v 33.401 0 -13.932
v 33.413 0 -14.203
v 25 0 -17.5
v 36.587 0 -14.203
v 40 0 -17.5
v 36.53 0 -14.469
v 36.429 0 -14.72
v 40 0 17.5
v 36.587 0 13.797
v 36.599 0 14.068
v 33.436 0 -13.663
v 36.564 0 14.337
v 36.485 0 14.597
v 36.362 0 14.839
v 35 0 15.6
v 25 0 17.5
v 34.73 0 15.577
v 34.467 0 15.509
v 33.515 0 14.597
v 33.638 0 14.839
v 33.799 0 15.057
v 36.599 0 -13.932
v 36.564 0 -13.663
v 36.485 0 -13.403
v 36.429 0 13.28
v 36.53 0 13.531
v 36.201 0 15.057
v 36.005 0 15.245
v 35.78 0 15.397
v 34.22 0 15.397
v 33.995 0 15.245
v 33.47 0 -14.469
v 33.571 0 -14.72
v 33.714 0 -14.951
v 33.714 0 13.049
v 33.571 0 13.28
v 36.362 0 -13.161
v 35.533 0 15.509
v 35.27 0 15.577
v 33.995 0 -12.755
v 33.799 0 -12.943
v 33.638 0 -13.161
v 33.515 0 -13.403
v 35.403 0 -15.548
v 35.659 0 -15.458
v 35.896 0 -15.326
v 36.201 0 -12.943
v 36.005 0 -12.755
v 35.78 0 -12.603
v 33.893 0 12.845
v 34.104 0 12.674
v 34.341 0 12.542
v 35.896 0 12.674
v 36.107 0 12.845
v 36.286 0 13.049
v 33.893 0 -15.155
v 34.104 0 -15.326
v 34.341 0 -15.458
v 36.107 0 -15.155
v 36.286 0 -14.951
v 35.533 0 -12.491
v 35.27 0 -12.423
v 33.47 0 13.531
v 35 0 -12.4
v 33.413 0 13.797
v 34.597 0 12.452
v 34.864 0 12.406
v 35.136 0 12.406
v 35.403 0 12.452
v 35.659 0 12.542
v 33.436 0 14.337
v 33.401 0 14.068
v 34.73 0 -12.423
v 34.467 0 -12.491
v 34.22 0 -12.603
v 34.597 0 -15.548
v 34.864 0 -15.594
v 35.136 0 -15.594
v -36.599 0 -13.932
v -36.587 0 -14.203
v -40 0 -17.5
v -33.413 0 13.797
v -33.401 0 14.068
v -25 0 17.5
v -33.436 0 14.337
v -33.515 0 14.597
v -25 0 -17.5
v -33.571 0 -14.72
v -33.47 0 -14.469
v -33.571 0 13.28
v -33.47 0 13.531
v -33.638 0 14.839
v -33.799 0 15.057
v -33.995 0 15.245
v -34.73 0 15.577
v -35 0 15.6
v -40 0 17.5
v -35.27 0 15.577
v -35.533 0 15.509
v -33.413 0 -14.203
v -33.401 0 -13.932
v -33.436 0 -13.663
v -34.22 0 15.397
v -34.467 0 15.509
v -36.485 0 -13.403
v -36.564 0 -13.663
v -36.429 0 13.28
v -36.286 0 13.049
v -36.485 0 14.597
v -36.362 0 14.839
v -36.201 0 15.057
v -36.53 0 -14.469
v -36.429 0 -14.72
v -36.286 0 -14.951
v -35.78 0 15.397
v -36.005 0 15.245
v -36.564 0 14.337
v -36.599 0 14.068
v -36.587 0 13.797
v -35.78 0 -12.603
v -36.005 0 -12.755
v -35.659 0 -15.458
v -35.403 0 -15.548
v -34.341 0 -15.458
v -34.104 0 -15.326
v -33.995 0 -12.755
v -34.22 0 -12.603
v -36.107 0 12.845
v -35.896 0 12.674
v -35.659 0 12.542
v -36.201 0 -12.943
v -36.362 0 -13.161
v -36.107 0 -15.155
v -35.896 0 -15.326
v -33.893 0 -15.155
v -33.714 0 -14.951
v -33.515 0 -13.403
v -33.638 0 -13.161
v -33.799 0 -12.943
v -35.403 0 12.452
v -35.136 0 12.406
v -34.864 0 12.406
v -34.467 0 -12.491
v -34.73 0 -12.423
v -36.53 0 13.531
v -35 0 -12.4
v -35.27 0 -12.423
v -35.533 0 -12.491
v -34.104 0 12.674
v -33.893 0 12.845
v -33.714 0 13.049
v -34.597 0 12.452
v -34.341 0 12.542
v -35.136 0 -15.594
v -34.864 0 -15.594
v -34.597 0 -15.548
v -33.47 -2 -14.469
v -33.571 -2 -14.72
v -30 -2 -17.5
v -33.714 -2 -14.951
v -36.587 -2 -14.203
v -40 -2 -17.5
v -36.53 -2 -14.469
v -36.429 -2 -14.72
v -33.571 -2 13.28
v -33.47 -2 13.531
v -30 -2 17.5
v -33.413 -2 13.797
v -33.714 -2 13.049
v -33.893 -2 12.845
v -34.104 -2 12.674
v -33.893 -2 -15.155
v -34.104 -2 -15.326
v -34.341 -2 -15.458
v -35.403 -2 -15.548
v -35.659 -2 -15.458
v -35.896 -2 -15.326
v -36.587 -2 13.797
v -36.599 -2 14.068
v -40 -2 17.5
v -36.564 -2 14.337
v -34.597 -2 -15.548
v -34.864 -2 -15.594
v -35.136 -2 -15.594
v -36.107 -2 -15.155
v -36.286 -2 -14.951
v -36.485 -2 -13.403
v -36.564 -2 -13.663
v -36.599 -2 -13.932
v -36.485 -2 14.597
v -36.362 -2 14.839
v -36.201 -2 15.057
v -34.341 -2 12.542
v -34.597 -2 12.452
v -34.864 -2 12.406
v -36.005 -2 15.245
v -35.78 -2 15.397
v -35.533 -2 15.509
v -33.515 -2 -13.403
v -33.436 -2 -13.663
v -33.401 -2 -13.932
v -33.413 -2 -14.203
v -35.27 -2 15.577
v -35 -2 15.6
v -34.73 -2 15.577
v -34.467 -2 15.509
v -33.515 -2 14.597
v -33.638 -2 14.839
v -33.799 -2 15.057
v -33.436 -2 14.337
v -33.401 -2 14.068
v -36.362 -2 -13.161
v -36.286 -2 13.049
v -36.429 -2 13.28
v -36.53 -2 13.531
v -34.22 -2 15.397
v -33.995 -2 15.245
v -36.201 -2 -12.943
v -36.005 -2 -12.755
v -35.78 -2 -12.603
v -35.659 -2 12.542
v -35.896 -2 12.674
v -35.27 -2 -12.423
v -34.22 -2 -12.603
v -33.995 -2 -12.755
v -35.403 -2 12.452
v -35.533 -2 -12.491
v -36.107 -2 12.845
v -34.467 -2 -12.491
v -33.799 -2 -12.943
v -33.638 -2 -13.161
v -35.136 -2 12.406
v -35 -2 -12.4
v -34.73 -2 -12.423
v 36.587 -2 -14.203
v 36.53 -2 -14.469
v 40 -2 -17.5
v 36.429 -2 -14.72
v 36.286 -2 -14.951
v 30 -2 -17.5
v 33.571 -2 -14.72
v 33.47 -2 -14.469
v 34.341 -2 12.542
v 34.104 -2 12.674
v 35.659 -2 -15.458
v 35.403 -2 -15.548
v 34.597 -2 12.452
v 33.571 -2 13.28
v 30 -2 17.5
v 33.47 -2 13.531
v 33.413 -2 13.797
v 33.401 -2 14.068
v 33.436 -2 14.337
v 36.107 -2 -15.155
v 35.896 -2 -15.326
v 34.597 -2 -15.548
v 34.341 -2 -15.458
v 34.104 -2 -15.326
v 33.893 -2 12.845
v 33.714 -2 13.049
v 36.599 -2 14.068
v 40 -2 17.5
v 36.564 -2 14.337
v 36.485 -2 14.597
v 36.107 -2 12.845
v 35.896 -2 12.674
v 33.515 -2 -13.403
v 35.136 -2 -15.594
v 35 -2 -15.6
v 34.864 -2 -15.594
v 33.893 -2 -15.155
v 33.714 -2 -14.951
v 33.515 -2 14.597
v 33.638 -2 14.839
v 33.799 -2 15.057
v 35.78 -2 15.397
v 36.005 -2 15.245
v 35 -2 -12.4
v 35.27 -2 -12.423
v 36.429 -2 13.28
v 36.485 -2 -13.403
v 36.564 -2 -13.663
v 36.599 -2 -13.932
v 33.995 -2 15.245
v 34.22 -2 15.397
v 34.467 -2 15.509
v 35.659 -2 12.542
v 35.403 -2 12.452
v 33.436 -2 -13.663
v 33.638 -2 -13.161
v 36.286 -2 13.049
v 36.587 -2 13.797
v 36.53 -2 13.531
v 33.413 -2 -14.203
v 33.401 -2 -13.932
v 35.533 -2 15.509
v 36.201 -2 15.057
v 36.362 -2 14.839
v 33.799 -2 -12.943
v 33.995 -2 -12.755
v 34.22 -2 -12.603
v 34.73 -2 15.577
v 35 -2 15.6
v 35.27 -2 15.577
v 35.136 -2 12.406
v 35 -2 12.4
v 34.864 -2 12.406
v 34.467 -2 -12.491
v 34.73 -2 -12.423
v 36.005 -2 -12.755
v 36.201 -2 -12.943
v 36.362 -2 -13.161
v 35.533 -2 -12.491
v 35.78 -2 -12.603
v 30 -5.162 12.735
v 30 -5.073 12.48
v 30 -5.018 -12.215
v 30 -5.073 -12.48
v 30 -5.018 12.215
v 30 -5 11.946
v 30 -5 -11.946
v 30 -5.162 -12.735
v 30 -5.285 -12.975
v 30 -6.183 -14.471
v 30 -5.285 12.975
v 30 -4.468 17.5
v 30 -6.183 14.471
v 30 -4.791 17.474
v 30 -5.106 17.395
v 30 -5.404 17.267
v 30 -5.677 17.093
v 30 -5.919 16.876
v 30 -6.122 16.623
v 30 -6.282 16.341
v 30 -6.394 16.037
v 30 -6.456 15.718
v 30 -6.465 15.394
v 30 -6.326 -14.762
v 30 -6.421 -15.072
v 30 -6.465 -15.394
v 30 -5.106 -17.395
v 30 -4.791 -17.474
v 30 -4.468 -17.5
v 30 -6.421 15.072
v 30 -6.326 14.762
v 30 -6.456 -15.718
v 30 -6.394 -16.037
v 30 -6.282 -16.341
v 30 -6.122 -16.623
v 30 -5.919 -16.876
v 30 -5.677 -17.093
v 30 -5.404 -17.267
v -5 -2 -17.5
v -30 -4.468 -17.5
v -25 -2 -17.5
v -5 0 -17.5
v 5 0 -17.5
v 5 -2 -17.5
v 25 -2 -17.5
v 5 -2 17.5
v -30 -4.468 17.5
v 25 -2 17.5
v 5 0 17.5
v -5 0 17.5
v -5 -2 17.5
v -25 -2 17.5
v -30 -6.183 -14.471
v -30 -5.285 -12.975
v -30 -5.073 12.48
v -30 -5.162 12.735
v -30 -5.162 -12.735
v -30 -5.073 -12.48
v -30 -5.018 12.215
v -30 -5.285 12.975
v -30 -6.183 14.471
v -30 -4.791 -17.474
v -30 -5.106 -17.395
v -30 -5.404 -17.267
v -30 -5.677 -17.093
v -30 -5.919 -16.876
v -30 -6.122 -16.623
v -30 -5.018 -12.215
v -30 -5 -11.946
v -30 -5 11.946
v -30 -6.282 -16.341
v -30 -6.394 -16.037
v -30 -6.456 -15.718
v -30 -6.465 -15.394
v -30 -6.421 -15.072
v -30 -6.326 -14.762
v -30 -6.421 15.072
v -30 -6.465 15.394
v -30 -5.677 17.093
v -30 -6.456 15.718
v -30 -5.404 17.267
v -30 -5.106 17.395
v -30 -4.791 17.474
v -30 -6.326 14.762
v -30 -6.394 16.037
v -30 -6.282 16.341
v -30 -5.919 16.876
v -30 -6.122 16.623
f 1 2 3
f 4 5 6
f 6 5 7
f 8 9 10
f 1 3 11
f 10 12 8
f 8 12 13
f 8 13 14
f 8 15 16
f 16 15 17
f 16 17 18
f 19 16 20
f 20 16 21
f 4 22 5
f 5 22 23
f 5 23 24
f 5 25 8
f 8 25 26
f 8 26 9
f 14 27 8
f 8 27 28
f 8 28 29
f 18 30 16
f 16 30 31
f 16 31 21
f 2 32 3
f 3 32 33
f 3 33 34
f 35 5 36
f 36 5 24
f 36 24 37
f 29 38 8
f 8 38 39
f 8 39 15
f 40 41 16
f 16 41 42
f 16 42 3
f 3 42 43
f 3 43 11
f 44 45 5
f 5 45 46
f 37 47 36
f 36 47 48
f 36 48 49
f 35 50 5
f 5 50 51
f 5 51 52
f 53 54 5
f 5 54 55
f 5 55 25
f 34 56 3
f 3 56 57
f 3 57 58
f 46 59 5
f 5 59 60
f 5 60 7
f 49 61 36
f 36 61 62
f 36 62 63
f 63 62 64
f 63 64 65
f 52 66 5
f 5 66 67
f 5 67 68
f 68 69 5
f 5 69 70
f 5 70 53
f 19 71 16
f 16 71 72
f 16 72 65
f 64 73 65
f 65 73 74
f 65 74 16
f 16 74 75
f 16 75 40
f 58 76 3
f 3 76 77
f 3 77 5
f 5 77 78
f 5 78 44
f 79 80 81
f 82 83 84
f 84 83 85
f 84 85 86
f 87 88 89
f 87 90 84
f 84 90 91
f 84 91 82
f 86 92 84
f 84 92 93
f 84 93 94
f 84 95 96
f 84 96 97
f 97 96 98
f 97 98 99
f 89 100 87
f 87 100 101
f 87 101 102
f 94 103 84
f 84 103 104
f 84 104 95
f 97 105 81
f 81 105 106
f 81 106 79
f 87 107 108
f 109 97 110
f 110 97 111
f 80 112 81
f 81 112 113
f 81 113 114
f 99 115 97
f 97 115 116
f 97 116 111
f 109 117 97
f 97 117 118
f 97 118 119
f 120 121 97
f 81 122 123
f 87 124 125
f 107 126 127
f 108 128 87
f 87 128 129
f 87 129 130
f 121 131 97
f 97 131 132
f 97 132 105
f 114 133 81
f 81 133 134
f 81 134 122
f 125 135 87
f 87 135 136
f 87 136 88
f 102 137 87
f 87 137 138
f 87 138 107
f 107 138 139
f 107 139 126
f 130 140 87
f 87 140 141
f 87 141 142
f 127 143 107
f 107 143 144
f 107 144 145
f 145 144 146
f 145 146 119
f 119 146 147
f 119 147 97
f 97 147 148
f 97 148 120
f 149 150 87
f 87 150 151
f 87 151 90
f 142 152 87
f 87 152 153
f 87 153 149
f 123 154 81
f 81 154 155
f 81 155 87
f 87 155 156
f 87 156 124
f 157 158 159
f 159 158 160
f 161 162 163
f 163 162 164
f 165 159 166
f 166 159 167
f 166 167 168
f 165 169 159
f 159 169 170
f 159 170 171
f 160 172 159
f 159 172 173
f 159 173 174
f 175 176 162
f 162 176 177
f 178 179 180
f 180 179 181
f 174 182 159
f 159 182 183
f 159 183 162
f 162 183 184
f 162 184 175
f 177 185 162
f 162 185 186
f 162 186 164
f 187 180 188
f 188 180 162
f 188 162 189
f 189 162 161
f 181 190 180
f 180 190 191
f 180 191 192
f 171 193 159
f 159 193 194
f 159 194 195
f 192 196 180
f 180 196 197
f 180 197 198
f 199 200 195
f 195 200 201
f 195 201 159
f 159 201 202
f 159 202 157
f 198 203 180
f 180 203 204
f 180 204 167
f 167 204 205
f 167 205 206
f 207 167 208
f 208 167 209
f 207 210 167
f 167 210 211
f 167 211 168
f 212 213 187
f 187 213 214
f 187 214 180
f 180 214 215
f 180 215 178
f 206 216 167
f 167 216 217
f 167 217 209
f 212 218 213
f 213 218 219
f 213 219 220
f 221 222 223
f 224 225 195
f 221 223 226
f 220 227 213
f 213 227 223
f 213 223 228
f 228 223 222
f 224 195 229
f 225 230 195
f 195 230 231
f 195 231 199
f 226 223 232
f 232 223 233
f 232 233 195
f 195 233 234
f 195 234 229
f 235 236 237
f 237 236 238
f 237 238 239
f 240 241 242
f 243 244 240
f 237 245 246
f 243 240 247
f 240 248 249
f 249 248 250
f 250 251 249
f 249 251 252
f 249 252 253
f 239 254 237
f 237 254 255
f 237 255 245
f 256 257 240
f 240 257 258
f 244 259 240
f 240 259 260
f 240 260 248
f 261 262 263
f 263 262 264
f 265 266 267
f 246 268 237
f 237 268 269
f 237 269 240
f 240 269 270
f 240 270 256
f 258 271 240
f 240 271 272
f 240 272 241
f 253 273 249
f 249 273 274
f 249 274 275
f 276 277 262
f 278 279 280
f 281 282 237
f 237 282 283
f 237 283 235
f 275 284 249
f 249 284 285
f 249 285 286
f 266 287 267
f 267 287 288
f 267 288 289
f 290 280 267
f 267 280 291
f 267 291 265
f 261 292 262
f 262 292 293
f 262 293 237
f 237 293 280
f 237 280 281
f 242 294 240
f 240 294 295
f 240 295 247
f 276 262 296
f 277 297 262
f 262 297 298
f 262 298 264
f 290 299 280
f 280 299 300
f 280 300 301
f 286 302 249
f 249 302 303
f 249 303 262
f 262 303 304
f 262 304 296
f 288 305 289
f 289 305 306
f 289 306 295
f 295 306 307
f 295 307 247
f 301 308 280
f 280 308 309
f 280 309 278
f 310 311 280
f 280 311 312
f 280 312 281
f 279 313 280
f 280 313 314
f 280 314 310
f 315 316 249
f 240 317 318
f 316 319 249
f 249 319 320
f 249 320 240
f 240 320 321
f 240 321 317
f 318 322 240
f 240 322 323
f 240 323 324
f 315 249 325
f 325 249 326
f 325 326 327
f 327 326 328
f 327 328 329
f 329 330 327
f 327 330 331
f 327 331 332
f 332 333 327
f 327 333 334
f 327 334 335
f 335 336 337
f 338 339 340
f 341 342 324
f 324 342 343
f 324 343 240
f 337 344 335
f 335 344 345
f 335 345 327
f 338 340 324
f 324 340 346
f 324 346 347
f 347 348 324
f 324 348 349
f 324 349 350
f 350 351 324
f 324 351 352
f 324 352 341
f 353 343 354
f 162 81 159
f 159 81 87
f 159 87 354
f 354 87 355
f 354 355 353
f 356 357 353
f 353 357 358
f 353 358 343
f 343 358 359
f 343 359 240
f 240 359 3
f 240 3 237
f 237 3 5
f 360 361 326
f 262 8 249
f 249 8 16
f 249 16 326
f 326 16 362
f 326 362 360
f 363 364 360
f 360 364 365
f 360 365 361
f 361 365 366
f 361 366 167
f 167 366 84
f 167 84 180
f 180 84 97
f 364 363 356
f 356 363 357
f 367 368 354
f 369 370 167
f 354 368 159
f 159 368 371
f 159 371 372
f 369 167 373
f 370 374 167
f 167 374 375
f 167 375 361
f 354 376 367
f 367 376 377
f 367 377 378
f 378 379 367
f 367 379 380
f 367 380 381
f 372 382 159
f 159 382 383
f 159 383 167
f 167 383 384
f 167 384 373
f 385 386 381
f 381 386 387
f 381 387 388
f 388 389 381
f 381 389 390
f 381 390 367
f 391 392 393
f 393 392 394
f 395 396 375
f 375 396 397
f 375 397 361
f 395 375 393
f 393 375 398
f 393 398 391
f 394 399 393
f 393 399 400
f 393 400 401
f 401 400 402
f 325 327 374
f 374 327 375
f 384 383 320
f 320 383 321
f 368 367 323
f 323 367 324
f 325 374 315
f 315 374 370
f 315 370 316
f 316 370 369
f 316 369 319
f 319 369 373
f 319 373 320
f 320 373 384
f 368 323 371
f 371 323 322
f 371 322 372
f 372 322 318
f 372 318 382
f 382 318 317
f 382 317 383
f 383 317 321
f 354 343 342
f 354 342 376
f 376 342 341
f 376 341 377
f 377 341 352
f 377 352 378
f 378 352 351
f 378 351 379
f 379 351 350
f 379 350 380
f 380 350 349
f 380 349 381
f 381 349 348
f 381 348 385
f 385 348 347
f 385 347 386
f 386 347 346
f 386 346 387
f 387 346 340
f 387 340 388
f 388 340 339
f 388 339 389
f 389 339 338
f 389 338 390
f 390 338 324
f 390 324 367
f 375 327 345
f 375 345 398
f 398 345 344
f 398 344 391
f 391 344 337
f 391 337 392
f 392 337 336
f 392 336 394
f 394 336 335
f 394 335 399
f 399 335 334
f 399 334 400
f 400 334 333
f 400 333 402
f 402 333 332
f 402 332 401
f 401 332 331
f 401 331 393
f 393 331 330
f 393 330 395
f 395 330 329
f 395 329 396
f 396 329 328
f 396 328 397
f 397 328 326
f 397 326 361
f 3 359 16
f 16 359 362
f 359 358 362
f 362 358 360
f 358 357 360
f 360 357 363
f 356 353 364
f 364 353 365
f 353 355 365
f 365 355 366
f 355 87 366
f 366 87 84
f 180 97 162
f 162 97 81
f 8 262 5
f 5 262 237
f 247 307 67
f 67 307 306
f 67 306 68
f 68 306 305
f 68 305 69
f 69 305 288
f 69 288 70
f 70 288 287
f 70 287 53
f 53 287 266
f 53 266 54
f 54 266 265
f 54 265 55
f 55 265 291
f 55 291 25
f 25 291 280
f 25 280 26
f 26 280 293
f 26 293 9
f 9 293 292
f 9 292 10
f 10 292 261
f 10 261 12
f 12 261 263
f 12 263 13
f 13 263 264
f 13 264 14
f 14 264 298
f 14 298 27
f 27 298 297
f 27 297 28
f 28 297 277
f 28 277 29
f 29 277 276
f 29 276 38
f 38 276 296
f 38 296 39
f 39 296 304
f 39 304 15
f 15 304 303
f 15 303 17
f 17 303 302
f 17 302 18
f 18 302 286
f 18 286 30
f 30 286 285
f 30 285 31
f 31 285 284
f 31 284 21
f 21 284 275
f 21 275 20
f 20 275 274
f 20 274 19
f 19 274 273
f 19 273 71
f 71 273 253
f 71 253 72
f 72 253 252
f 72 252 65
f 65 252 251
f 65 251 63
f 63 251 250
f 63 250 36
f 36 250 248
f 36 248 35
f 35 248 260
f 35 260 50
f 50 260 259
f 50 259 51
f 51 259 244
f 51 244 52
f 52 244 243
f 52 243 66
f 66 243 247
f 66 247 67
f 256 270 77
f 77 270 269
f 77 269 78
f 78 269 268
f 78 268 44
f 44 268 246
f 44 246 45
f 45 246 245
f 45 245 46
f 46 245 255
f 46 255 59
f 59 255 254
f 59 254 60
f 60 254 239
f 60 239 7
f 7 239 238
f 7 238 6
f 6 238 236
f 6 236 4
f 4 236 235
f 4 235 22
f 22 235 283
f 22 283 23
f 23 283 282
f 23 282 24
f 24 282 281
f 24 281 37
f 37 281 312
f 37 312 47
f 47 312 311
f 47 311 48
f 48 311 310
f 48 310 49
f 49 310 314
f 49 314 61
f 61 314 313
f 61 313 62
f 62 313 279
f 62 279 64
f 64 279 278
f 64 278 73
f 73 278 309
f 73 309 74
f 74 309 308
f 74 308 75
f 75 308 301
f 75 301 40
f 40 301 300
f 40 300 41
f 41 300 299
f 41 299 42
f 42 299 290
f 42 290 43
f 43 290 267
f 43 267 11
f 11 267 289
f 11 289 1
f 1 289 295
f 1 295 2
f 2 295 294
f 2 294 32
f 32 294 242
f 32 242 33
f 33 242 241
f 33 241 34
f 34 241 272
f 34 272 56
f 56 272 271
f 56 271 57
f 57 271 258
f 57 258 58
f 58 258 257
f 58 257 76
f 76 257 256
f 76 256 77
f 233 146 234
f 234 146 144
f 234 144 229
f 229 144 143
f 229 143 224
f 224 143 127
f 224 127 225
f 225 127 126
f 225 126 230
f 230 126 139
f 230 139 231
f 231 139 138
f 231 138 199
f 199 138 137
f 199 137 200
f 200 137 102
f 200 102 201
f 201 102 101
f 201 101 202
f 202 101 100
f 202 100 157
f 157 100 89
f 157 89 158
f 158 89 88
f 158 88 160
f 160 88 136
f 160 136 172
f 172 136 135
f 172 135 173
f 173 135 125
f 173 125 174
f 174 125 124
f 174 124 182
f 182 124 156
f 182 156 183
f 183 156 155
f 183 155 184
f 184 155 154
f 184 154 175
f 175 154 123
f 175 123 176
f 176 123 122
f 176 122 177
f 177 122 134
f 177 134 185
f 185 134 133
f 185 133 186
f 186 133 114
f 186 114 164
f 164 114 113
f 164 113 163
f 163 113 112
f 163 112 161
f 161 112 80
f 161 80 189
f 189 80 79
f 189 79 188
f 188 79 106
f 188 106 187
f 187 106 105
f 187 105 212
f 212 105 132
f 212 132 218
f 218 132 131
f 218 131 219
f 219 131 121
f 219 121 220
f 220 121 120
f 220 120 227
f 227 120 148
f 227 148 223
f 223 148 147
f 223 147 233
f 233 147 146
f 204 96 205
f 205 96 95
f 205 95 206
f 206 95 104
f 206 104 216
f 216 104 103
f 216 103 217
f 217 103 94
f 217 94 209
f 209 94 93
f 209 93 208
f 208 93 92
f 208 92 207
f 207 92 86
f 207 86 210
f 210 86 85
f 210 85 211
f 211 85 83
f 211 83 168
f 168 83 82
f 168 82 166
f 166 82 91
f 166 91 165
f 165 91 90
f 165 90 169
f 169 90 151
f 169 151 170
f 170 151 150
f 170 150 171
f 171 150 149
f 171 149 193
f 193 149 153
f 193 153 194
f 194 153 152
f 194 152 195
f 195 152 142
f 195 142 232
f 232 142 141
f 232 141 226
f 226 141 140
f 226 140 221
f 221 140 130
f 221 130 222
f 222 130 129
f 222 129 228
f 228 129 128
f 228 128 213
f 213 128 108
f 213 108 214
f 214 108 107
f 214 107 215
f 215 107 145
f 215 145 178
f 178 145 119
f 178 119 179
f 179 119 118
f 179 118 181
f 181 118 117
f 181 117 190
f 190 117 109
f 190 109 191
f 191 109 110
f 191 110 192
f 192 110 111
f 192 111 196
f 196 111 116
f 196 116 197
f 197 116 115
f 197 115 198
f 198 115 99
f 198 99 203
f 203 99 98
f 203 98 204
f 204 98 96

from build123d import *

# Parameters (mm, degrees)
SKETCH1_W               = 60
SKETCH1_H               = 35
BOSS_EXTRUDE1_DEPTH     = 8
CUT_EXTRUDE1_DEPTH      = 1
CUT_EXTRUDE1_DEPTH_BACK = 61
FILLET1_R               = 2
SKETCH3_W               = 20
SKETCH3_H               = 2
CUT_EXTRUDE2_DEPTH      = 36
SKETCH5_W               = 35
SKETCH5_H               = 2
BOSS_EXTRUDE2_DEPTH     = 10
SKETCH6_R               = 1.6
CUT_EXTRUDE3_DEPTH      = 10


with BuildPart() as part:
    # Sketch1 → Boss-Extrude1 (new body)
    with BuildSketch(Plane(origin=(0, 0, 0), x_dir=(1, 0, 0), z_dir=(0, 1, 0))):
        Rectangle(SKETCH1_W, SKETCH1_H)
    extrude(amount=-BOSS_EXTRUDE1_DEPTH)

    # Sketch2 → Cut-Extrude1 (cut, two sides)
    with BuildSketch(Plane(origin=(30, 0, 0), x_dir=(0, 0, -1), z_dir=(1, 0, 0))) as cut_extrude1_sk:
        Polygon((-12.5, -5), (-17.5, -8), (0, -8), (0, -5), align=None)
        Polygon((0, -5), (0, -8), (17.5, -8), (12.5, -5), align=None)
    extrude(amount=CUT_EXTRUDE1_DEPTH, mode=Mode.SUBTRACT)
    extrude(cut_extrude1_sk.sketch, amount=-CUT_EXTRUDE1_DEPTH_BACK, mode=Mode.SUBTRACT)

    # Fillet1
    fillet1_edges = [part.edges().sort_by_distance(p)[0] for p in [
        (0, -8, -17.5),
        (0, -5, 12.5),
        (0, -5, -12.5),
        (0, -8, 17.5),
    ]]
    fillet(fillet1_edges, radius=FILLET1_R)

    # Sketch3 → Cut-Extrude2 (cut, through all)
    with BuildSketch(Plane.XY.offset(17.5)):
        with Locations((-15, -1)):
            Rectangle(SKETCH3_W, SKETCH3_H)
        with Locations((15, -1)):
            Rectangle(SKETCH3_W, SKETCH3_H)
    extrude(amount=-CUT_EXTRUDE2_DEPTH, mode=Mode.SUBTRACT)

    # Sketch5 → Boss-Extrude2 (add)
    with BuildSketch(Plane.ZY.offset(30)):
        with Locations((0, -1)):
            Rectangle(SKETCH5_W, SKETCH5_H)
    boss_extrude2 = extrude(amount=BOSS_EXTRUDE2_DEPTH)

    # Mirror1: Boss-Extrude2 across plane
    add(boss_extrude2.mirror(Plane(origin=(0, 0, 0), x_dir=(0, 0, 1), z_dir=(1, 0, 0))))

    # Sketch6 → Cut-Extrude3 (cut)
    with BuildSketch(Plane(origin=(0, 0, 0), x_dir=(1, 0, 0), z_dir=(0, 1, 0))):
        with Locations((-35, 14)):
            Circle(SKETCH6_R)
        with Locations((35, 14)):
            Circle(SKETCH6_R)
        with Locations((35, -14)):
            Circle(SKETCH6_R)
        with Locations((-35, -14)):
            Circle(SKETCH6_R)
    extrude(amount=-CUT_EXTRUDE3_DEPTH, mode=Mode.SUBTRACT)


solid = part.part
